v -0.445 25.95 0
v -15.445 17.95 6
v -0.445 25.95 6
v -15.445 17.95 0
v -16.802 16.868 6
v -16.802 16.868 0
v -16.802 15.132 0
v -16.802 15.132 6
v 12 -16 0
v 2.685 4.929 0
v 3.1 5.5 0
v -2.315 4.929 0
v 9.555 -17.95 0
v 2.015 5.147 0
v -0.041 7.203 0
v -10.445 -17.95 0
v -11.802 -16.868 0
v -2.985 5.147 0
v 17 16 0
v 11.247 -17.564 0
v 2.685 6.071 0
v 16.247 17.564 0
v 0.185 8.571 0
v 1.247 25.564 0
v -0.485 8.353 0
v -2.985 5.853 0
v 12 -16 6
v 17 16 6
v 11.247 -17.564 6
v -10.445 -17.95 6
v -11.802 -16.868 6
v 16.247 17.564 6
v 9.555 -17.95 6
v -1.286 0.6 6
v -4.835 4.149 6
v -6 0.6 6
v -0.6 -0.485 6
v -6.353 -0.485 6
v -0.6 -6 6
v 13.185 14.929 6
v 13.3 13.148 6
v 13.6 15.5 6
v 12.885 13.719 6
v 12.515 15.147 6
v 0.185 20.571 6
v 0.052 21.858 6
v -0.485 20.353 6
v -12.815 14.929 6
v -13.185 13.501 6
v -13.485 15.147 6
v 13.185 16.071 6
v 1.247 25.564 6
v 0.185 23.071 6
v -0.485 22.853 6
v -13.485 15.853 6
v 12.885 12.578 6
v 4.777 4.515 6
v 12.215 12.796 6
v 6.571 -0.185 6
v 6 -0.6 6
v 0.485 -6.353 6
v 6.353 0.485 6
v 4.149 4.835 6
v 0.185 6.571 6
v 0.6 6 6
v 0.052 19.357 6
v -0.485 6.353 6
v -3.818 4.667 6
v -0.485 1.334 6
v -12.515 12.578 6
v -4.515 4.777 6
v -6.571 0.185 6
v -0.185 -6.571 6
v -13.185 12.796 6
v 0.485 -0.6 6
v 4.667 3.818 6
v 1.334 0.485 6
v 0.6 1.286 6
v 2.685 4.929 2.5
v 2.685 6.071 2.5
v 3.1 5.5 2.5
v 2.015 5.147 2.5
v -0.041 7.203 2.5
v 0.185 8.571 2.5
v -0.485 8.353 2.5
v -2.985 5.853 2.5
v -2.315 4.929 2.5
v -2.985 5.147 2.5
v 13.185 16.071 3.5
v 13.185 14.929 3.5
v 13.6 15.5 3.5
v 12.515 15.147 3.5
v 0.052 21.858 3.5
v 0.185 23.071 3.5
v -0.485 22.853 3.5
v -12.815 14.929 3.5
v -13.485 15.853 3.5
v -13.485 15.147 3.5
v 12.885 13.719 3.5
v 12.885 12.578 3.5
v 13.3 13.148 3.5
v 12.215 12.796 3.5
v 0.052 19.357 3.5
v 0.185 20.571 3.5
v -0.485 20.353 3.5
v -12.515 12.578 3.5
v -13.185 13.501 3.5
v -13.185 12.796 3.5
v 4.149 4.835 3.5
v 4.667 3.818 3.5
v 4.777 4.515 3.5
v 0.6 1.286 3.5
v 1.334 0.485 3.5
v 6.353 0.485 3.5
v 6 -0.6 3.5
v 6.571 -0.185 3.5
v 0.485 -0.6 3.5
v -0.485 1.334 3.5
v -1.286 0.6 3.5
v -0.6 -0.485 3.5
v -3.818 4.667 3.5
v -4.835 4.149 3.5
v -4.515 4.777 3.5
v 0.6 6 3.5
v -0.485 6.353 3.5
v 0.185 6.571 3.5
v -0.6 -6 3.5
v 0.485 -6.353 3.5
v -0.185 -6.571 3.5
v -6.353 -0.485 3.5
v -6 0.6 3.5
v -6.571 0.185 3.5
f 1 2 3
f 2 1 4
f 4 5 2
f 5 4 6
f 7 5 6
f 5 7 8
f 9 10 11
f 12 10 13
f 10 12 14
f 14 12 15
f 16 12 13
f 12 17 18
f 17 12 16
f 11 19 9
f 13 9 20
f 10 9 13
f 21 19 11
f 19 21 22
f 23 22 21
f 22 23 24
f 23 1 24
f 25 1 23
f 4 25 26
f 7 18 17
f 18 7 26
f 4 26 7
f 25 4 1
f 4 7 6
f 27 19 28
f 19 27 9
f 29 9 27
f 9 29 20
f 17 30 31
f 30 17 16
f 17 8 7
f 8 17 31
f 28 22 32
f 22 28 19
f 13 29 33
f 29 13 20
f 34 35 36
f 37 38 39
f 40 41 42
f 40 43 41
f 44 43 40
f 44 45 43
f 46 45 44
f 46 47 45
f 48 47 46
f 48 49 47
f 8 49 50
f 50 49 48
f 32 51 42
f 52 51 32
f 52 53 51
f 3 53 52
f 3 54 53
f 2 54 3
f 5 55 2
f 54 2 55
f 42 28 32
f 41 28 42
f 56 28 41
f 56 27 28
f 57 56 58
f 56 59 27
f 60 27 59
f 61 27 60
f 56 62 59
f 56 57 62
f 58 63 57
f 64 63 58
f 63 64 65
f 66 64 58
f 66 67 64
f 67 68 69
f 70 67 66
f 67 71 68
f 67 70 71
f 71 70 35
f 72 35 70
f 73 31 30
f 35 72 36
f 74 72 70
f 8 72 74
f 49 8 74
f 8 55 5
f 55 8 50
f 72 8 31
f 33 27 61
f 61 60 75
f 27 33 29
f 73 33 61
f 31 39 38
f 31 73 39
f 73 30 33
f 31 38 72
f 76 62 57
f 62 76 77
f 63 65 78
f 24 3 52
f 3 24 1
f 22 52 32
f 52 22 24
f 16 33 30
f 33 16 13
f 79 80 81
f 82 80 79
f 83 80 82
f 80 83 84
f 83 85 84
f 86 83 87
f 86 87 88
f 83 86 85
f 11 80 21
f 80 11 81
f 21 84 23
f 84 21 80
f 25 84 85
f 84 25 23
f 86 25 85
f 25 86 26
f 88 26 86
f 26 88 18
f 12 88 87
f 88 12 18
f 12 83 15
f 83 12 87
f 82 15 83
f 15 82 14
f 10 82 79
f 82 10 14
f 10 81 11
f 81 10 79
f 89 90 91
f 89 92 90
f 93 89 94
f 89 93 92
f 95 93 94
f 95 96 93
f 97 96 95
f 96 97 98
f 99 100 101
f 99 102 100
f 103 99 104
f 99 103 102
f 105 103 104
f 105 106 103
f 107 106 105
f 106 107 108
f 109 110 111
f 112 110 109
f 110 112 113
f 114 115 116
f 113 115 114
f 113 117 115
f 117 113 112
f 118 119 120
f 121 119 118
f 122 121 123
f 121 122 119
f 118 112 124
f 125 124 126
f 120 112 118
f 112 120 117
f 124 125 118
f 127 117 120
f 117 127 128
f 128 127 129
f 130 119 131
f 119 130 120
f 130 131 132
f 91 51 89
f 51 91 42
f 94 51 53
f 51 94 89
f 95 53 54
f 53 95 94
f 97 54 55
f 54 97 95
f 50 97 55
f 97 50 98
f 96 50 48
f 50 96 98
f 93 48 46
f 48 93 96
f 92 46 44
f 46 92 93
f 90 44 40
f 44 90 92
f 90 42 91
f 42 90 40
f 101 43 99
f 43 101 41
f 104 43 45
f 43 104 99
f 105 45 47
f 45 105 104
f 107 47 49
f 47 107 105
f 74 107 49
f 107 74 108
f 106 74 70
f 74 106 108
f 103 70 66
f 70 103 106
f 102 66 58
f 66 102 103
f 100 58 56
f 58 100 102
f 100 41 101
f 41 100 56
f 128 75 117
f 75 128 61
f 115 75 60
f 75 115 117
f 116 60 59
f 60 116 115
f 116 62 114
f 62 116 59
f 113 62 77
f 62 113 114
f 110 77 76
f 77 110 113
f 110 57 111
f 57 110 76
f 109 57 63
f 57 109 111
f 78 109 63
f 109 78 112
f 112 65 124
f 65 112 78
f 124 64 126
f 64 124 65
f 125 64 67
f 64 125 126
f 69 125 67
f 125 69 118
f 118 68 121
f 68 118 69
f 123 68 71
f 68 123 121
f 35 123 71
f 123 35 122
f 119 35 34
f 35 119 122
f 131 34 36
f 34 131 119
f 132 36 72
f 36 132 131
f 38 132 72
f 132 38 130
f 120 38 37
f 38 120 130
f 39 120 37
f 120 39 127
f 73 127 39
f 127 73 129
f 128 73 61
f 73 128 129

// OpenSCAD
// file: moves/range.scad
module shogi_move_range(edges=[0], thick=0.6) {
    for (a=edges) {
        rotate(a=a*45) {
            hull() {
                translate([-2.5, 5.5, 0]) circle(thick);
                translate([0, 8, 0]) circle(thick);
            }

            hull() {
                translate([0, 8, 0]) circle(thick);
                translate([2.5, 5.5, 0]) circle(thick);
            }
        }
    }
}
// file: moves/step.scad
module shogi_move_step(edges=[0], length=6, thick=0.6) {
    for (a=edges) {
        rotate(a=a*45) hull() {
            circle(thick);
            translate([0, length, 0]) circle(thick);
        }
    }
}
// file: ranks/rank2.scad
module shogi_rank_2(thick=0.6) {
    hull() {
        translate([-12.7, 13.148182, 0]) circle(thick);
        translate([0, 20, 0]) circle(thick);
    }

    hull() {
        translate([0, 20, 0]) circle(thick);
        translate([12.7, 13.148182, 0]) circle(thick);
    }
}
// file: ranks/rank1.scad
module shogi_rank_1(thick=0.6) {
    hull() {
        translate([-13, 15.5, 0]) circle(thick);
        translate([0, 22.5, 0]) circle(thick);
    }

    hull() {
        translate([0, 22.5, 0]) circle(thick);
        translate([13, 15.5, 0]) circle(thick);
    }
}
// file: koma/slim.scad
module shogi_koma_slim(width=30, length=40, rounding=2) {
    points=[
        [width/6 , 0],
        [0, length*0.8],
        [width/2, length],
        [width, length*0.8],
        [5*width/6, 0]
    ];

    minkowski() {
        polygon(points);
        circle(rounding);
    }
}
// file: base/piece.scad
module shogi_piece(thick=6) {
    unit=thick/12;

    difference() {
        translate([-15, -16, 0])
        linear_extrude(thick) children(0);
        translate([0, 0, -1*unit]) linear_extrude(6*unit) children(1);
        translate([0, 0, 7*unit]) linear_extrude(6*unit) children(2);
        translate([0, 0, 9*unit]) linear_extrude(6*unit) children(3);
    }
}
// main file
use <base/piece.scad>;
use <koma/slim.scad>;
use <ranks/rank1.scad>;
use <ranks/rank2.scad>;
use <moves/step.scad>;
use <moves/range.scad>;

shogi_piece() {
    shogi_koma_slim();
    shogi_move_range();
    union() {
        shogi_rank_1();
        shogi_rank_2();
        shogi_move_step(edges=[0, 1, 2, 4, 6, 7]);
    }
    union() {}
}
